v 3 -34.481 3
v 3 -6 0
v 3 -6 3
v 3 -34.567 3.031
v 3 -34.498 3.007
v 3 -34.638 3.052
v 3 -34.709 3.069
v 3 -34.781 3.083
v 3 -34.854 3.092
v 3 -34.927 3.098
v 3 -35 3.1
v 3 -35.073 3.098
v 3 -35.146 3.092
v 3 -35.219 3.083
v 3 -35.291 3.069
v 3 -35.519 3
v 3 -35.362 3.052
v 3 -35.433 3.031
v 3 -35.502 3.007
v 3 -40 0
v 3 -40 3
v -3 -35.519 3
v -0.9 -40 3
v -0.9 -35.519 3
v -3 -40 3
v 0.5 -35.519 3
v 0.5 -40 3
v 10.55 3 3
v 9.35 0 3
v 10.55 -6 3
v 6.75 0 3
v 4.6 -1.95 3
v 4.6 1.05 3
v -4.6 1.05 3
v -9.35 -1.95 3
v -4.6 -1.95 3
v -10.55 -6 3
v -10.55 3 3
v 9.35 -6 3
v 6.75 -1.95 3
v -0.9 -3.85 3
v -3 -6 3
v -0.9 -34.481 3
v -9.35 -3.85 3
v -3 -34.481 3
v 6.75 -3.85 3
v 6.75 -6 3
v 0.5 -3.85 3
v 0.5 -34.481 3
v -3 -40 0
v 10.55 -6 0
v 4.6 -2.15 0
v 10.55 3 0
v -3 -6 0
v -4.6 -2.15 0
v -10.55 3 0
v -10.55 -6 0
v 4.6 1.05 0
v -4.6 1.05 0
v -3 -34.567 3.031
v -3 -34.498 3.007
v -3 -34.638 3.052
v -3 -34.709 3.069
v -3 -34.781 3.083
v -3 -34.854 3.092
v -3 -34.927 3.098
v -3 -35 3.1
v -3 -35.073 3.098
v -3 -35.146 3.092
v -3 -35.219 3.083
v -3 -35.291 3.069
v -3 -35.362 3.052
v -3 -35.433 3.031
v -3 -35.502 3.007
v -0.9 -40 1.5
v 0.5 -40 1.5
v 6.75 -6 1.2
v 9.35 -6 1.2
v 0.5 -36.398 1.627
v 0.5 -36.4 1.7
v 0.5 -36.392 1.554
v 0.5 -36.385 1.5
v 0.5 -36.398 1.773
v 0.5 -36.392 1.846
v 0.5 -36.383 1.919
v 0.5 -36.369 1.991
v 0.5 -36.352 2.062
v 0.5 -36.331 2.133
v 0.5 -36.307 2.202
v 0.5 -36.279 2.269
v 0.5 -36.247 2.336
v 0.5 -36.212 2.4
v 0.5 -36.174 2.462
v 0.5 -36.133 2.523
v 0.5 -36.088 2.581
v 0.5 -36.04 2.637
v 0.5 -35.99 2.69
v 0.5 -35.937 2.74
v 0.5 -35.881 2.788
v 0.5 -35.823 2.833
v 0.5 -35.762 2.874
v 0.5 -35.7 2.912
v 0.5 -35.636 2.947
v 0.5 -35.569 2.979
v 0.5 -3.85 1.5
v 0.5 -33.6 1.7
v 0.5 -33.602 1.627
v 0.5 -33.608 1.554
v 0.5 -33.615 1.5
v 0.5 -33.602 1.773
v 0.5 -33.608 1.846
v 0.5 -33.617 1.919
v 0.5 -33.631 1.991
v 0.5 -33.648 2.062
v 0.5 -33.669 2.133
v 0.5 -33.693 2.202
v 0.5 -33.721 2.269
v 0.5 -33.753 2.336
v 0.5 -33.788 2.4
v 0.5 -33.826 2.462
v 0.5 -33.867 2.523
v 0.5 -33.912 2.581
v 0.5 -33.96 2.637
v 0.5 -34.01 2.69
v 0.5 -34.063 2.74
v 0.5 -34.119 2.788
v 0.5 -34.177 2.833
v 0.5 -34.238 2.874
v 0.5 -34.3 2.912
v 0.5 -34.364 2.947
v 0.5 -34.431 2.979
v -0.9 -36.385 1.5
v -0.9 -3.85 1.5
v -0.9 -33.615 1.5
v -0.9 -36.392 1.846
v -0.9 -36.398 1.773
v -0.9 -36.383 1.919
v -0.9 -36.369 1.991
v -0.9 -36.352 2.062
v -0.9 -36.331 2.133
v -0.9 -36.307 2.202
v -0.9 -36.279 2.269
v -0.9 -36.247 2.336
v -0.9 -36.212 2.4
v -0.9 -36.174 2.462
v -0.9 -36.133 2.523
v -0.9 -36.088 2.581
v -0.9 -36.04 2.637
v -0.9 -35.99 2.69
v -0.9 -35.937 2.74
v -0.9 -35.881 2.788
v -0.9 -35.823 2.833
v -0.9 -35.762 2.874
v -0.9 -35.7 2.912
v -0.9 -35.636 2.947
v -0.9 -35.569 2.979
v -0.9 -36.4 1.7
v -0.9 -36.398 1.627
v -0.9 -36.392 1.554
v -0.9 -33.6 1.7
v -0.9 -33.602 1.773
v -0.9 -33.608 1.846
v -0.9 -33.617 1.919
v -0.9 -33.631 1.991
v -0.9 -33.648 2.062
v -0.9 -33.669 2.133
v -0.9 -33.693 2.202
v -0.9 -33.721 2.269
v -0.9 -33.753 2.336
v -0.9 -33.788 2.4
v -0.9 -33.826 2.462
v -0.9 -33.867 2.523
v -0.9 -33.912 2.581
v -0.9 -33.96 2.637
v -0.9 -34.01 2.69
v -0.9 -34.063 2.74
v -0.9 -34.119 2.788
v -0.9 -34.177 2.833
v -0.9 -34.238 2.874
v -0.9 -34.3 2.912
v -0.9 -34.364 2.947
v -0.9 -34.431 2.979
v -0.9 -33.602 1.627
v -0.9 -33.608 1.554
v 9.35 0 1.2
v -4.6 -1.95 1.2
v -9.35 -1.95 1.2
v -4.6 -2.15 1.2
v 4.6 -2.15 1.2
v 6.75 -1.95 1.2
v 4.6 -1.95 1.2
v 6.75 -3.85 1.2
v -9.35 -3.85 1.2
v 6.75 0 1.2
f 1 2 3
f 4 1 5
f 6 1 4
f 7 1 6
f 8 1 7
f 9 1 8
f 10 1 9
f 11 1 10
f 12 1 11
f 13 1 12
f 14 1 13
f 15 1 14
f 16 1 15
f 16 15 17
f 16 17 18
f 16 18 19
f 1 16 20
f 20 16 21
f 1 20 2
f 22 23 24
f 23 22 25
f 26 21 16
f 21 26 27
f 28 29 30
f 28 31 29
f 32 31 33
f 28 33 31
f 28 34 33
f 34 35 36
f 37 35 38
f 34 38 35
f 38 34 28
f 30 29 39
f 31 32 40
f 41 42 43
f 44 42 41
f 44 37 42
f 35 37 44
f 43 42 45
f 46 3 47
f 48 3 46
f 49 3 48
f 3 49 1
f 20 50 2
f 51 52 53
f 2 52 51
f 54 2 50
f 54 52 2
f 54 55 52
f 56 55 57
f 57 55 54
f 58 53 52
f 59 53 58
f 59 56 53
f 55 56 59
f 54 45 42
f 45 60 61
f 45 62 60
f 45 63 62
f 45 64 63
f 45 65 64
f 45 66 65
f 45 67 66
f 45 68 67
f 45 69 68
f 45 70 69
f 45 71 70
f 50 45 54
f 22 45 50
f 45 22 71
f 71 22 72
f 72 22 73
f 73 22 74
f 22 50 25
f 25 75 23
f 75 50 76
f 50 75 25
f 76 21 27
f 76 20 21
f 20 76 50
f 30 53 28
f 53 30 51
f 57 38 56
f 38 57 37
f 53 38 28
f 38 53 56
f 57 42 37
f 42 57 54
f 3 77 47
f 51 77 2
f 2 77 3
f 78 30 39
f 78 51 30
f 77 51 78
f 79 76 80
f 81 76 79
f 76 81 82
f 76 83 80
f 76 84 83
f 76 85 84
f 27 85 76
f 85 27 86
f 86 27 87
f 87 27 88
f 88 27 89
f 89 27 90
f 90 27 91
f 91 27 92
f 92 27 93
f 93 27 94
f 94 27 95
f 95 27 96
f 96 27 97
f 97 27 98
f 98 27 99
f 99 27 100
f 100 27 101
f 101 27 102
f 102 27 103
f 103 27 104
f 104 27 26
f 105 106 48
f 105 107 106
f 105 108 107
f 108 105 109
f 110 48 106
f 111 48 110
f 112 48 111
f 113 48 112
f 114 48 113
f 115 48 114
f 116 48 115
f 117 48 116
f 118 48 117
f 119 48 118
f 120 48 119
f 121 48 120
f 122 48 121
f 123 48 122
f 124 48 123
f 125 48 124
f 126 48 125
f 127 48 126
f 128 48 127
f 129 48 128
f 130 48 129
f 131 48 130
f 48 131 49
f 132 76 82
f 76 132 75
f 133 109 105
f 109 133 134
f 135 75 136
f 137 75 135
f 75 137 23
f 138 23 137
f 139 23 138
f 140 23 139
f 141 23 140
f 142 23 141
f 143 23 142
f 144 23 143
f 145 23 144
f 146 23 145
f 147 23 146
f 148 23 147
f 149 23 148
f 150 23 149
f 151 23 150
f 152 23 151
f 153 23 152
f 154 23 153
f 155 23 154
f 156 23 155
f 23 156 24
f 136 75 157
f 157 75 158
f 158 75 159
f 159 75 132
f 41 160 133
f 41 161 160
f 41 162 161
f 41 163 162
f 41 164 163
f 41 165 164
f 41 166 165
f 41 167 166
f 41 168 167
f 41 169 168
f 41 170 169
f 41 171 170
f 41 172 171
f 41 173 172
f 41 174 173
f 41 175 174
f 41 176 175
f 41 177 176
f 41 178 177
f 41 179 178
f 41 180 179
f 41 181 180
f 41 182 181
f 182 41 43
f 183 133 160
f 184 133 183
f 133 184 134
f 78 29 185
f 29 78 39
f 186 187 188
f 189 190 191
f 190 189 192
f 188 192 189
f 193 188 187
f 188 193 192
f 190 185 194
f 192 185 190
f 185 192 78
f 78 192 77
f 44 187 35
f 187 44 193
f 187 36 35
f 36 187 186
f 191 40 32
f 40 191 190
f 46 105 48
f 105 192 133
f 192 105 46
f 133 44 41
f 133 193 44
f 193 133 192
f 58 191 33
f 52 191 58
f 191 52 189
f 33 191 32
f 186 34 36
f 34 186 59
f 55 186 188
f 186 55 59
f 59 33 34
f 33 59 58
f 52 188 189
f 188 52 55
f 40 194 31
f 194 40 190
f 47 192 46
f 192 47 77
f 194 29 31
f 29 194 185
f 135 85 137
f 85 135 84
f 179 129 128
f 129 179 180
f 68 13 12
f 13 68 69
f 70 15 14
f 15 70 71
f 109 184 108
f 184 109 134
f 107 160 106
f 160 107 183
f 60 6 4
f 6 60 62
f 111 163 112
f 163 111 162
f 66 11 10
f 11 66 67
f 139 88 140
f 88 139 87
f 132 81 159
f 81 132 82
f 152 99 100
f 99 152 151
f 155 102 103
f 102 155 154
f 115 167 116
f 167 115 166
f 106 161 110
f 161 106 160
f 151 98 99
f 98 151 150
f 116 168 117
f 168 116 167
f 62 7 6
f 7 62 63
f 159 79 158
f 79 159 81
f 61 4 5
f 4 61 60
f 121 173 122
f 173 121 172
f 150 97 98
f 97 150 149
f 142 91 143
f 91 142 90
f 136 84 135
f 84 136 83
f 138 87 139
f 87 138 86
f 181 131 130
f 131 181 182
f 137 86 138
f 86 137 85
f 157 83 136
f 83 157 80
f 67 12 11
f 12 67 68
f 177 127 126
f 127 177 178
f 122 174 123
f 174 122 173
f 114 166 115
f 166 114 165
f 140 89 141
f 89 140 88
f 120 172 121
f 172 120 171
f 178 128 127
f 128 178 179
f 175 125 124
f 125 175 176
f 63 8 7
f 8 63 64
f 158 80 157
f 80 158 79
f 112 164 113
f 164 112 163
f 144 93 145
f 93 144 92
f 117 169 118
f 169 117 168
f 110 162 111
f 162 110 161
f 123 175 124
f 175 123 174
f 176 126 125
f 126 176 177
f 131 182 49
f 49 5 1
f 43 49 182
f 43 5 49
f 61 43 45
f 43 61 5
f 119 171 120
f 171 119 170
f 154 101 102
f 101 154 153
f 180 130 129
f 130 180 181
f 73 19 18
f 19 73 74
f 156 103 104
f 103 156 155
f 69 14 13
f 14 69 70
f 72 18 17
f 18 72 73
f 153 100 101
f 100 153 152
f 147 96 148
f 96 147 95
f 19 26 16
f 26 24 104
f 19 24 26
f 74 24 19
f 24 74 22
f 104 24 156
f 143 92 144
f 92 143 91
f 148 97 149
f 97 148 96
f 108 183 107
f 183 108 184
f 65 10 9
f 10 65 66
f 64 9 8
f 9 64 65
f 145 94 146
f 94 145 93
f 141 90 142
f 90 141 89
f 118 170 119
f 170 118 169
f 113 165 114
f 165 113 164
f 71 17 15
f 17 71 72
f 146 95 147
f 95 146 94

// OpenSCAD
$fn = 120;

pcbh = 1.7;
pcbw = 18.3;
pcbd = 22.9;
sd = 22.3;
dpw = 2.6;
smh = 1.2;
ah = 1.1; // ceramic antenna
aw = 6.2;
usbw = 9.2;
usbh = 3.2;

union() {
    difference() {
        union() {
            translate([-3,-40,0]) cube([6, 40, 3.0]);
            translate([(pcbw + 2.8)/-2,-6,0]) cube([pcbw + 2.8, 9, 3.0]);
            // Clicky thingy
            /* hull() {
                translate([(pcbw + 2.8)/-2,1,3]) cube([pcbw + 2.8, 2, 0.2]);
                translate([(pcbw + 2.8)/-2,2.6,4.4]) cube([pcbw + 2.8, 0.4, 0.2]);
            } */
        }
        // Groove y
        translate([-1.5 + smh/2,-40, 1.2 + (pcbd-sd)/2]) cube([smh + 0.2, 37, 5]);
        // Groove x
        translate([(pcbw + 0.4) / -2, -3 - pcbh/2, 1.2]) cube([pcbw + 0.4, pcbh + 0.2, 5]);
        // Antenna
        // translate([aw/-2, -3 + pcbh/2, 1.2]) cube([aw, ah, 1.3]);
        // USB 
        translate([usbw/-2, -3 + pcbh/2, 0]) cube([usbw, usbh, 7]);
        // Pin header on USB side
        translate([pcbw/2 - 2.4 , - 12, 1.2]) cube([2.6, 12, 5]);
        // Pin header opposing side
        // translate([pcbw/-2 - 0.2 , - 12, 1.2]) cube([2.6, 12, 5]);
    }
    translate([-3, -35, 1.4 + (pcbd-sd)/2]) rotate([0,90,0]) cylinder(6,1.4,1.4);
}
